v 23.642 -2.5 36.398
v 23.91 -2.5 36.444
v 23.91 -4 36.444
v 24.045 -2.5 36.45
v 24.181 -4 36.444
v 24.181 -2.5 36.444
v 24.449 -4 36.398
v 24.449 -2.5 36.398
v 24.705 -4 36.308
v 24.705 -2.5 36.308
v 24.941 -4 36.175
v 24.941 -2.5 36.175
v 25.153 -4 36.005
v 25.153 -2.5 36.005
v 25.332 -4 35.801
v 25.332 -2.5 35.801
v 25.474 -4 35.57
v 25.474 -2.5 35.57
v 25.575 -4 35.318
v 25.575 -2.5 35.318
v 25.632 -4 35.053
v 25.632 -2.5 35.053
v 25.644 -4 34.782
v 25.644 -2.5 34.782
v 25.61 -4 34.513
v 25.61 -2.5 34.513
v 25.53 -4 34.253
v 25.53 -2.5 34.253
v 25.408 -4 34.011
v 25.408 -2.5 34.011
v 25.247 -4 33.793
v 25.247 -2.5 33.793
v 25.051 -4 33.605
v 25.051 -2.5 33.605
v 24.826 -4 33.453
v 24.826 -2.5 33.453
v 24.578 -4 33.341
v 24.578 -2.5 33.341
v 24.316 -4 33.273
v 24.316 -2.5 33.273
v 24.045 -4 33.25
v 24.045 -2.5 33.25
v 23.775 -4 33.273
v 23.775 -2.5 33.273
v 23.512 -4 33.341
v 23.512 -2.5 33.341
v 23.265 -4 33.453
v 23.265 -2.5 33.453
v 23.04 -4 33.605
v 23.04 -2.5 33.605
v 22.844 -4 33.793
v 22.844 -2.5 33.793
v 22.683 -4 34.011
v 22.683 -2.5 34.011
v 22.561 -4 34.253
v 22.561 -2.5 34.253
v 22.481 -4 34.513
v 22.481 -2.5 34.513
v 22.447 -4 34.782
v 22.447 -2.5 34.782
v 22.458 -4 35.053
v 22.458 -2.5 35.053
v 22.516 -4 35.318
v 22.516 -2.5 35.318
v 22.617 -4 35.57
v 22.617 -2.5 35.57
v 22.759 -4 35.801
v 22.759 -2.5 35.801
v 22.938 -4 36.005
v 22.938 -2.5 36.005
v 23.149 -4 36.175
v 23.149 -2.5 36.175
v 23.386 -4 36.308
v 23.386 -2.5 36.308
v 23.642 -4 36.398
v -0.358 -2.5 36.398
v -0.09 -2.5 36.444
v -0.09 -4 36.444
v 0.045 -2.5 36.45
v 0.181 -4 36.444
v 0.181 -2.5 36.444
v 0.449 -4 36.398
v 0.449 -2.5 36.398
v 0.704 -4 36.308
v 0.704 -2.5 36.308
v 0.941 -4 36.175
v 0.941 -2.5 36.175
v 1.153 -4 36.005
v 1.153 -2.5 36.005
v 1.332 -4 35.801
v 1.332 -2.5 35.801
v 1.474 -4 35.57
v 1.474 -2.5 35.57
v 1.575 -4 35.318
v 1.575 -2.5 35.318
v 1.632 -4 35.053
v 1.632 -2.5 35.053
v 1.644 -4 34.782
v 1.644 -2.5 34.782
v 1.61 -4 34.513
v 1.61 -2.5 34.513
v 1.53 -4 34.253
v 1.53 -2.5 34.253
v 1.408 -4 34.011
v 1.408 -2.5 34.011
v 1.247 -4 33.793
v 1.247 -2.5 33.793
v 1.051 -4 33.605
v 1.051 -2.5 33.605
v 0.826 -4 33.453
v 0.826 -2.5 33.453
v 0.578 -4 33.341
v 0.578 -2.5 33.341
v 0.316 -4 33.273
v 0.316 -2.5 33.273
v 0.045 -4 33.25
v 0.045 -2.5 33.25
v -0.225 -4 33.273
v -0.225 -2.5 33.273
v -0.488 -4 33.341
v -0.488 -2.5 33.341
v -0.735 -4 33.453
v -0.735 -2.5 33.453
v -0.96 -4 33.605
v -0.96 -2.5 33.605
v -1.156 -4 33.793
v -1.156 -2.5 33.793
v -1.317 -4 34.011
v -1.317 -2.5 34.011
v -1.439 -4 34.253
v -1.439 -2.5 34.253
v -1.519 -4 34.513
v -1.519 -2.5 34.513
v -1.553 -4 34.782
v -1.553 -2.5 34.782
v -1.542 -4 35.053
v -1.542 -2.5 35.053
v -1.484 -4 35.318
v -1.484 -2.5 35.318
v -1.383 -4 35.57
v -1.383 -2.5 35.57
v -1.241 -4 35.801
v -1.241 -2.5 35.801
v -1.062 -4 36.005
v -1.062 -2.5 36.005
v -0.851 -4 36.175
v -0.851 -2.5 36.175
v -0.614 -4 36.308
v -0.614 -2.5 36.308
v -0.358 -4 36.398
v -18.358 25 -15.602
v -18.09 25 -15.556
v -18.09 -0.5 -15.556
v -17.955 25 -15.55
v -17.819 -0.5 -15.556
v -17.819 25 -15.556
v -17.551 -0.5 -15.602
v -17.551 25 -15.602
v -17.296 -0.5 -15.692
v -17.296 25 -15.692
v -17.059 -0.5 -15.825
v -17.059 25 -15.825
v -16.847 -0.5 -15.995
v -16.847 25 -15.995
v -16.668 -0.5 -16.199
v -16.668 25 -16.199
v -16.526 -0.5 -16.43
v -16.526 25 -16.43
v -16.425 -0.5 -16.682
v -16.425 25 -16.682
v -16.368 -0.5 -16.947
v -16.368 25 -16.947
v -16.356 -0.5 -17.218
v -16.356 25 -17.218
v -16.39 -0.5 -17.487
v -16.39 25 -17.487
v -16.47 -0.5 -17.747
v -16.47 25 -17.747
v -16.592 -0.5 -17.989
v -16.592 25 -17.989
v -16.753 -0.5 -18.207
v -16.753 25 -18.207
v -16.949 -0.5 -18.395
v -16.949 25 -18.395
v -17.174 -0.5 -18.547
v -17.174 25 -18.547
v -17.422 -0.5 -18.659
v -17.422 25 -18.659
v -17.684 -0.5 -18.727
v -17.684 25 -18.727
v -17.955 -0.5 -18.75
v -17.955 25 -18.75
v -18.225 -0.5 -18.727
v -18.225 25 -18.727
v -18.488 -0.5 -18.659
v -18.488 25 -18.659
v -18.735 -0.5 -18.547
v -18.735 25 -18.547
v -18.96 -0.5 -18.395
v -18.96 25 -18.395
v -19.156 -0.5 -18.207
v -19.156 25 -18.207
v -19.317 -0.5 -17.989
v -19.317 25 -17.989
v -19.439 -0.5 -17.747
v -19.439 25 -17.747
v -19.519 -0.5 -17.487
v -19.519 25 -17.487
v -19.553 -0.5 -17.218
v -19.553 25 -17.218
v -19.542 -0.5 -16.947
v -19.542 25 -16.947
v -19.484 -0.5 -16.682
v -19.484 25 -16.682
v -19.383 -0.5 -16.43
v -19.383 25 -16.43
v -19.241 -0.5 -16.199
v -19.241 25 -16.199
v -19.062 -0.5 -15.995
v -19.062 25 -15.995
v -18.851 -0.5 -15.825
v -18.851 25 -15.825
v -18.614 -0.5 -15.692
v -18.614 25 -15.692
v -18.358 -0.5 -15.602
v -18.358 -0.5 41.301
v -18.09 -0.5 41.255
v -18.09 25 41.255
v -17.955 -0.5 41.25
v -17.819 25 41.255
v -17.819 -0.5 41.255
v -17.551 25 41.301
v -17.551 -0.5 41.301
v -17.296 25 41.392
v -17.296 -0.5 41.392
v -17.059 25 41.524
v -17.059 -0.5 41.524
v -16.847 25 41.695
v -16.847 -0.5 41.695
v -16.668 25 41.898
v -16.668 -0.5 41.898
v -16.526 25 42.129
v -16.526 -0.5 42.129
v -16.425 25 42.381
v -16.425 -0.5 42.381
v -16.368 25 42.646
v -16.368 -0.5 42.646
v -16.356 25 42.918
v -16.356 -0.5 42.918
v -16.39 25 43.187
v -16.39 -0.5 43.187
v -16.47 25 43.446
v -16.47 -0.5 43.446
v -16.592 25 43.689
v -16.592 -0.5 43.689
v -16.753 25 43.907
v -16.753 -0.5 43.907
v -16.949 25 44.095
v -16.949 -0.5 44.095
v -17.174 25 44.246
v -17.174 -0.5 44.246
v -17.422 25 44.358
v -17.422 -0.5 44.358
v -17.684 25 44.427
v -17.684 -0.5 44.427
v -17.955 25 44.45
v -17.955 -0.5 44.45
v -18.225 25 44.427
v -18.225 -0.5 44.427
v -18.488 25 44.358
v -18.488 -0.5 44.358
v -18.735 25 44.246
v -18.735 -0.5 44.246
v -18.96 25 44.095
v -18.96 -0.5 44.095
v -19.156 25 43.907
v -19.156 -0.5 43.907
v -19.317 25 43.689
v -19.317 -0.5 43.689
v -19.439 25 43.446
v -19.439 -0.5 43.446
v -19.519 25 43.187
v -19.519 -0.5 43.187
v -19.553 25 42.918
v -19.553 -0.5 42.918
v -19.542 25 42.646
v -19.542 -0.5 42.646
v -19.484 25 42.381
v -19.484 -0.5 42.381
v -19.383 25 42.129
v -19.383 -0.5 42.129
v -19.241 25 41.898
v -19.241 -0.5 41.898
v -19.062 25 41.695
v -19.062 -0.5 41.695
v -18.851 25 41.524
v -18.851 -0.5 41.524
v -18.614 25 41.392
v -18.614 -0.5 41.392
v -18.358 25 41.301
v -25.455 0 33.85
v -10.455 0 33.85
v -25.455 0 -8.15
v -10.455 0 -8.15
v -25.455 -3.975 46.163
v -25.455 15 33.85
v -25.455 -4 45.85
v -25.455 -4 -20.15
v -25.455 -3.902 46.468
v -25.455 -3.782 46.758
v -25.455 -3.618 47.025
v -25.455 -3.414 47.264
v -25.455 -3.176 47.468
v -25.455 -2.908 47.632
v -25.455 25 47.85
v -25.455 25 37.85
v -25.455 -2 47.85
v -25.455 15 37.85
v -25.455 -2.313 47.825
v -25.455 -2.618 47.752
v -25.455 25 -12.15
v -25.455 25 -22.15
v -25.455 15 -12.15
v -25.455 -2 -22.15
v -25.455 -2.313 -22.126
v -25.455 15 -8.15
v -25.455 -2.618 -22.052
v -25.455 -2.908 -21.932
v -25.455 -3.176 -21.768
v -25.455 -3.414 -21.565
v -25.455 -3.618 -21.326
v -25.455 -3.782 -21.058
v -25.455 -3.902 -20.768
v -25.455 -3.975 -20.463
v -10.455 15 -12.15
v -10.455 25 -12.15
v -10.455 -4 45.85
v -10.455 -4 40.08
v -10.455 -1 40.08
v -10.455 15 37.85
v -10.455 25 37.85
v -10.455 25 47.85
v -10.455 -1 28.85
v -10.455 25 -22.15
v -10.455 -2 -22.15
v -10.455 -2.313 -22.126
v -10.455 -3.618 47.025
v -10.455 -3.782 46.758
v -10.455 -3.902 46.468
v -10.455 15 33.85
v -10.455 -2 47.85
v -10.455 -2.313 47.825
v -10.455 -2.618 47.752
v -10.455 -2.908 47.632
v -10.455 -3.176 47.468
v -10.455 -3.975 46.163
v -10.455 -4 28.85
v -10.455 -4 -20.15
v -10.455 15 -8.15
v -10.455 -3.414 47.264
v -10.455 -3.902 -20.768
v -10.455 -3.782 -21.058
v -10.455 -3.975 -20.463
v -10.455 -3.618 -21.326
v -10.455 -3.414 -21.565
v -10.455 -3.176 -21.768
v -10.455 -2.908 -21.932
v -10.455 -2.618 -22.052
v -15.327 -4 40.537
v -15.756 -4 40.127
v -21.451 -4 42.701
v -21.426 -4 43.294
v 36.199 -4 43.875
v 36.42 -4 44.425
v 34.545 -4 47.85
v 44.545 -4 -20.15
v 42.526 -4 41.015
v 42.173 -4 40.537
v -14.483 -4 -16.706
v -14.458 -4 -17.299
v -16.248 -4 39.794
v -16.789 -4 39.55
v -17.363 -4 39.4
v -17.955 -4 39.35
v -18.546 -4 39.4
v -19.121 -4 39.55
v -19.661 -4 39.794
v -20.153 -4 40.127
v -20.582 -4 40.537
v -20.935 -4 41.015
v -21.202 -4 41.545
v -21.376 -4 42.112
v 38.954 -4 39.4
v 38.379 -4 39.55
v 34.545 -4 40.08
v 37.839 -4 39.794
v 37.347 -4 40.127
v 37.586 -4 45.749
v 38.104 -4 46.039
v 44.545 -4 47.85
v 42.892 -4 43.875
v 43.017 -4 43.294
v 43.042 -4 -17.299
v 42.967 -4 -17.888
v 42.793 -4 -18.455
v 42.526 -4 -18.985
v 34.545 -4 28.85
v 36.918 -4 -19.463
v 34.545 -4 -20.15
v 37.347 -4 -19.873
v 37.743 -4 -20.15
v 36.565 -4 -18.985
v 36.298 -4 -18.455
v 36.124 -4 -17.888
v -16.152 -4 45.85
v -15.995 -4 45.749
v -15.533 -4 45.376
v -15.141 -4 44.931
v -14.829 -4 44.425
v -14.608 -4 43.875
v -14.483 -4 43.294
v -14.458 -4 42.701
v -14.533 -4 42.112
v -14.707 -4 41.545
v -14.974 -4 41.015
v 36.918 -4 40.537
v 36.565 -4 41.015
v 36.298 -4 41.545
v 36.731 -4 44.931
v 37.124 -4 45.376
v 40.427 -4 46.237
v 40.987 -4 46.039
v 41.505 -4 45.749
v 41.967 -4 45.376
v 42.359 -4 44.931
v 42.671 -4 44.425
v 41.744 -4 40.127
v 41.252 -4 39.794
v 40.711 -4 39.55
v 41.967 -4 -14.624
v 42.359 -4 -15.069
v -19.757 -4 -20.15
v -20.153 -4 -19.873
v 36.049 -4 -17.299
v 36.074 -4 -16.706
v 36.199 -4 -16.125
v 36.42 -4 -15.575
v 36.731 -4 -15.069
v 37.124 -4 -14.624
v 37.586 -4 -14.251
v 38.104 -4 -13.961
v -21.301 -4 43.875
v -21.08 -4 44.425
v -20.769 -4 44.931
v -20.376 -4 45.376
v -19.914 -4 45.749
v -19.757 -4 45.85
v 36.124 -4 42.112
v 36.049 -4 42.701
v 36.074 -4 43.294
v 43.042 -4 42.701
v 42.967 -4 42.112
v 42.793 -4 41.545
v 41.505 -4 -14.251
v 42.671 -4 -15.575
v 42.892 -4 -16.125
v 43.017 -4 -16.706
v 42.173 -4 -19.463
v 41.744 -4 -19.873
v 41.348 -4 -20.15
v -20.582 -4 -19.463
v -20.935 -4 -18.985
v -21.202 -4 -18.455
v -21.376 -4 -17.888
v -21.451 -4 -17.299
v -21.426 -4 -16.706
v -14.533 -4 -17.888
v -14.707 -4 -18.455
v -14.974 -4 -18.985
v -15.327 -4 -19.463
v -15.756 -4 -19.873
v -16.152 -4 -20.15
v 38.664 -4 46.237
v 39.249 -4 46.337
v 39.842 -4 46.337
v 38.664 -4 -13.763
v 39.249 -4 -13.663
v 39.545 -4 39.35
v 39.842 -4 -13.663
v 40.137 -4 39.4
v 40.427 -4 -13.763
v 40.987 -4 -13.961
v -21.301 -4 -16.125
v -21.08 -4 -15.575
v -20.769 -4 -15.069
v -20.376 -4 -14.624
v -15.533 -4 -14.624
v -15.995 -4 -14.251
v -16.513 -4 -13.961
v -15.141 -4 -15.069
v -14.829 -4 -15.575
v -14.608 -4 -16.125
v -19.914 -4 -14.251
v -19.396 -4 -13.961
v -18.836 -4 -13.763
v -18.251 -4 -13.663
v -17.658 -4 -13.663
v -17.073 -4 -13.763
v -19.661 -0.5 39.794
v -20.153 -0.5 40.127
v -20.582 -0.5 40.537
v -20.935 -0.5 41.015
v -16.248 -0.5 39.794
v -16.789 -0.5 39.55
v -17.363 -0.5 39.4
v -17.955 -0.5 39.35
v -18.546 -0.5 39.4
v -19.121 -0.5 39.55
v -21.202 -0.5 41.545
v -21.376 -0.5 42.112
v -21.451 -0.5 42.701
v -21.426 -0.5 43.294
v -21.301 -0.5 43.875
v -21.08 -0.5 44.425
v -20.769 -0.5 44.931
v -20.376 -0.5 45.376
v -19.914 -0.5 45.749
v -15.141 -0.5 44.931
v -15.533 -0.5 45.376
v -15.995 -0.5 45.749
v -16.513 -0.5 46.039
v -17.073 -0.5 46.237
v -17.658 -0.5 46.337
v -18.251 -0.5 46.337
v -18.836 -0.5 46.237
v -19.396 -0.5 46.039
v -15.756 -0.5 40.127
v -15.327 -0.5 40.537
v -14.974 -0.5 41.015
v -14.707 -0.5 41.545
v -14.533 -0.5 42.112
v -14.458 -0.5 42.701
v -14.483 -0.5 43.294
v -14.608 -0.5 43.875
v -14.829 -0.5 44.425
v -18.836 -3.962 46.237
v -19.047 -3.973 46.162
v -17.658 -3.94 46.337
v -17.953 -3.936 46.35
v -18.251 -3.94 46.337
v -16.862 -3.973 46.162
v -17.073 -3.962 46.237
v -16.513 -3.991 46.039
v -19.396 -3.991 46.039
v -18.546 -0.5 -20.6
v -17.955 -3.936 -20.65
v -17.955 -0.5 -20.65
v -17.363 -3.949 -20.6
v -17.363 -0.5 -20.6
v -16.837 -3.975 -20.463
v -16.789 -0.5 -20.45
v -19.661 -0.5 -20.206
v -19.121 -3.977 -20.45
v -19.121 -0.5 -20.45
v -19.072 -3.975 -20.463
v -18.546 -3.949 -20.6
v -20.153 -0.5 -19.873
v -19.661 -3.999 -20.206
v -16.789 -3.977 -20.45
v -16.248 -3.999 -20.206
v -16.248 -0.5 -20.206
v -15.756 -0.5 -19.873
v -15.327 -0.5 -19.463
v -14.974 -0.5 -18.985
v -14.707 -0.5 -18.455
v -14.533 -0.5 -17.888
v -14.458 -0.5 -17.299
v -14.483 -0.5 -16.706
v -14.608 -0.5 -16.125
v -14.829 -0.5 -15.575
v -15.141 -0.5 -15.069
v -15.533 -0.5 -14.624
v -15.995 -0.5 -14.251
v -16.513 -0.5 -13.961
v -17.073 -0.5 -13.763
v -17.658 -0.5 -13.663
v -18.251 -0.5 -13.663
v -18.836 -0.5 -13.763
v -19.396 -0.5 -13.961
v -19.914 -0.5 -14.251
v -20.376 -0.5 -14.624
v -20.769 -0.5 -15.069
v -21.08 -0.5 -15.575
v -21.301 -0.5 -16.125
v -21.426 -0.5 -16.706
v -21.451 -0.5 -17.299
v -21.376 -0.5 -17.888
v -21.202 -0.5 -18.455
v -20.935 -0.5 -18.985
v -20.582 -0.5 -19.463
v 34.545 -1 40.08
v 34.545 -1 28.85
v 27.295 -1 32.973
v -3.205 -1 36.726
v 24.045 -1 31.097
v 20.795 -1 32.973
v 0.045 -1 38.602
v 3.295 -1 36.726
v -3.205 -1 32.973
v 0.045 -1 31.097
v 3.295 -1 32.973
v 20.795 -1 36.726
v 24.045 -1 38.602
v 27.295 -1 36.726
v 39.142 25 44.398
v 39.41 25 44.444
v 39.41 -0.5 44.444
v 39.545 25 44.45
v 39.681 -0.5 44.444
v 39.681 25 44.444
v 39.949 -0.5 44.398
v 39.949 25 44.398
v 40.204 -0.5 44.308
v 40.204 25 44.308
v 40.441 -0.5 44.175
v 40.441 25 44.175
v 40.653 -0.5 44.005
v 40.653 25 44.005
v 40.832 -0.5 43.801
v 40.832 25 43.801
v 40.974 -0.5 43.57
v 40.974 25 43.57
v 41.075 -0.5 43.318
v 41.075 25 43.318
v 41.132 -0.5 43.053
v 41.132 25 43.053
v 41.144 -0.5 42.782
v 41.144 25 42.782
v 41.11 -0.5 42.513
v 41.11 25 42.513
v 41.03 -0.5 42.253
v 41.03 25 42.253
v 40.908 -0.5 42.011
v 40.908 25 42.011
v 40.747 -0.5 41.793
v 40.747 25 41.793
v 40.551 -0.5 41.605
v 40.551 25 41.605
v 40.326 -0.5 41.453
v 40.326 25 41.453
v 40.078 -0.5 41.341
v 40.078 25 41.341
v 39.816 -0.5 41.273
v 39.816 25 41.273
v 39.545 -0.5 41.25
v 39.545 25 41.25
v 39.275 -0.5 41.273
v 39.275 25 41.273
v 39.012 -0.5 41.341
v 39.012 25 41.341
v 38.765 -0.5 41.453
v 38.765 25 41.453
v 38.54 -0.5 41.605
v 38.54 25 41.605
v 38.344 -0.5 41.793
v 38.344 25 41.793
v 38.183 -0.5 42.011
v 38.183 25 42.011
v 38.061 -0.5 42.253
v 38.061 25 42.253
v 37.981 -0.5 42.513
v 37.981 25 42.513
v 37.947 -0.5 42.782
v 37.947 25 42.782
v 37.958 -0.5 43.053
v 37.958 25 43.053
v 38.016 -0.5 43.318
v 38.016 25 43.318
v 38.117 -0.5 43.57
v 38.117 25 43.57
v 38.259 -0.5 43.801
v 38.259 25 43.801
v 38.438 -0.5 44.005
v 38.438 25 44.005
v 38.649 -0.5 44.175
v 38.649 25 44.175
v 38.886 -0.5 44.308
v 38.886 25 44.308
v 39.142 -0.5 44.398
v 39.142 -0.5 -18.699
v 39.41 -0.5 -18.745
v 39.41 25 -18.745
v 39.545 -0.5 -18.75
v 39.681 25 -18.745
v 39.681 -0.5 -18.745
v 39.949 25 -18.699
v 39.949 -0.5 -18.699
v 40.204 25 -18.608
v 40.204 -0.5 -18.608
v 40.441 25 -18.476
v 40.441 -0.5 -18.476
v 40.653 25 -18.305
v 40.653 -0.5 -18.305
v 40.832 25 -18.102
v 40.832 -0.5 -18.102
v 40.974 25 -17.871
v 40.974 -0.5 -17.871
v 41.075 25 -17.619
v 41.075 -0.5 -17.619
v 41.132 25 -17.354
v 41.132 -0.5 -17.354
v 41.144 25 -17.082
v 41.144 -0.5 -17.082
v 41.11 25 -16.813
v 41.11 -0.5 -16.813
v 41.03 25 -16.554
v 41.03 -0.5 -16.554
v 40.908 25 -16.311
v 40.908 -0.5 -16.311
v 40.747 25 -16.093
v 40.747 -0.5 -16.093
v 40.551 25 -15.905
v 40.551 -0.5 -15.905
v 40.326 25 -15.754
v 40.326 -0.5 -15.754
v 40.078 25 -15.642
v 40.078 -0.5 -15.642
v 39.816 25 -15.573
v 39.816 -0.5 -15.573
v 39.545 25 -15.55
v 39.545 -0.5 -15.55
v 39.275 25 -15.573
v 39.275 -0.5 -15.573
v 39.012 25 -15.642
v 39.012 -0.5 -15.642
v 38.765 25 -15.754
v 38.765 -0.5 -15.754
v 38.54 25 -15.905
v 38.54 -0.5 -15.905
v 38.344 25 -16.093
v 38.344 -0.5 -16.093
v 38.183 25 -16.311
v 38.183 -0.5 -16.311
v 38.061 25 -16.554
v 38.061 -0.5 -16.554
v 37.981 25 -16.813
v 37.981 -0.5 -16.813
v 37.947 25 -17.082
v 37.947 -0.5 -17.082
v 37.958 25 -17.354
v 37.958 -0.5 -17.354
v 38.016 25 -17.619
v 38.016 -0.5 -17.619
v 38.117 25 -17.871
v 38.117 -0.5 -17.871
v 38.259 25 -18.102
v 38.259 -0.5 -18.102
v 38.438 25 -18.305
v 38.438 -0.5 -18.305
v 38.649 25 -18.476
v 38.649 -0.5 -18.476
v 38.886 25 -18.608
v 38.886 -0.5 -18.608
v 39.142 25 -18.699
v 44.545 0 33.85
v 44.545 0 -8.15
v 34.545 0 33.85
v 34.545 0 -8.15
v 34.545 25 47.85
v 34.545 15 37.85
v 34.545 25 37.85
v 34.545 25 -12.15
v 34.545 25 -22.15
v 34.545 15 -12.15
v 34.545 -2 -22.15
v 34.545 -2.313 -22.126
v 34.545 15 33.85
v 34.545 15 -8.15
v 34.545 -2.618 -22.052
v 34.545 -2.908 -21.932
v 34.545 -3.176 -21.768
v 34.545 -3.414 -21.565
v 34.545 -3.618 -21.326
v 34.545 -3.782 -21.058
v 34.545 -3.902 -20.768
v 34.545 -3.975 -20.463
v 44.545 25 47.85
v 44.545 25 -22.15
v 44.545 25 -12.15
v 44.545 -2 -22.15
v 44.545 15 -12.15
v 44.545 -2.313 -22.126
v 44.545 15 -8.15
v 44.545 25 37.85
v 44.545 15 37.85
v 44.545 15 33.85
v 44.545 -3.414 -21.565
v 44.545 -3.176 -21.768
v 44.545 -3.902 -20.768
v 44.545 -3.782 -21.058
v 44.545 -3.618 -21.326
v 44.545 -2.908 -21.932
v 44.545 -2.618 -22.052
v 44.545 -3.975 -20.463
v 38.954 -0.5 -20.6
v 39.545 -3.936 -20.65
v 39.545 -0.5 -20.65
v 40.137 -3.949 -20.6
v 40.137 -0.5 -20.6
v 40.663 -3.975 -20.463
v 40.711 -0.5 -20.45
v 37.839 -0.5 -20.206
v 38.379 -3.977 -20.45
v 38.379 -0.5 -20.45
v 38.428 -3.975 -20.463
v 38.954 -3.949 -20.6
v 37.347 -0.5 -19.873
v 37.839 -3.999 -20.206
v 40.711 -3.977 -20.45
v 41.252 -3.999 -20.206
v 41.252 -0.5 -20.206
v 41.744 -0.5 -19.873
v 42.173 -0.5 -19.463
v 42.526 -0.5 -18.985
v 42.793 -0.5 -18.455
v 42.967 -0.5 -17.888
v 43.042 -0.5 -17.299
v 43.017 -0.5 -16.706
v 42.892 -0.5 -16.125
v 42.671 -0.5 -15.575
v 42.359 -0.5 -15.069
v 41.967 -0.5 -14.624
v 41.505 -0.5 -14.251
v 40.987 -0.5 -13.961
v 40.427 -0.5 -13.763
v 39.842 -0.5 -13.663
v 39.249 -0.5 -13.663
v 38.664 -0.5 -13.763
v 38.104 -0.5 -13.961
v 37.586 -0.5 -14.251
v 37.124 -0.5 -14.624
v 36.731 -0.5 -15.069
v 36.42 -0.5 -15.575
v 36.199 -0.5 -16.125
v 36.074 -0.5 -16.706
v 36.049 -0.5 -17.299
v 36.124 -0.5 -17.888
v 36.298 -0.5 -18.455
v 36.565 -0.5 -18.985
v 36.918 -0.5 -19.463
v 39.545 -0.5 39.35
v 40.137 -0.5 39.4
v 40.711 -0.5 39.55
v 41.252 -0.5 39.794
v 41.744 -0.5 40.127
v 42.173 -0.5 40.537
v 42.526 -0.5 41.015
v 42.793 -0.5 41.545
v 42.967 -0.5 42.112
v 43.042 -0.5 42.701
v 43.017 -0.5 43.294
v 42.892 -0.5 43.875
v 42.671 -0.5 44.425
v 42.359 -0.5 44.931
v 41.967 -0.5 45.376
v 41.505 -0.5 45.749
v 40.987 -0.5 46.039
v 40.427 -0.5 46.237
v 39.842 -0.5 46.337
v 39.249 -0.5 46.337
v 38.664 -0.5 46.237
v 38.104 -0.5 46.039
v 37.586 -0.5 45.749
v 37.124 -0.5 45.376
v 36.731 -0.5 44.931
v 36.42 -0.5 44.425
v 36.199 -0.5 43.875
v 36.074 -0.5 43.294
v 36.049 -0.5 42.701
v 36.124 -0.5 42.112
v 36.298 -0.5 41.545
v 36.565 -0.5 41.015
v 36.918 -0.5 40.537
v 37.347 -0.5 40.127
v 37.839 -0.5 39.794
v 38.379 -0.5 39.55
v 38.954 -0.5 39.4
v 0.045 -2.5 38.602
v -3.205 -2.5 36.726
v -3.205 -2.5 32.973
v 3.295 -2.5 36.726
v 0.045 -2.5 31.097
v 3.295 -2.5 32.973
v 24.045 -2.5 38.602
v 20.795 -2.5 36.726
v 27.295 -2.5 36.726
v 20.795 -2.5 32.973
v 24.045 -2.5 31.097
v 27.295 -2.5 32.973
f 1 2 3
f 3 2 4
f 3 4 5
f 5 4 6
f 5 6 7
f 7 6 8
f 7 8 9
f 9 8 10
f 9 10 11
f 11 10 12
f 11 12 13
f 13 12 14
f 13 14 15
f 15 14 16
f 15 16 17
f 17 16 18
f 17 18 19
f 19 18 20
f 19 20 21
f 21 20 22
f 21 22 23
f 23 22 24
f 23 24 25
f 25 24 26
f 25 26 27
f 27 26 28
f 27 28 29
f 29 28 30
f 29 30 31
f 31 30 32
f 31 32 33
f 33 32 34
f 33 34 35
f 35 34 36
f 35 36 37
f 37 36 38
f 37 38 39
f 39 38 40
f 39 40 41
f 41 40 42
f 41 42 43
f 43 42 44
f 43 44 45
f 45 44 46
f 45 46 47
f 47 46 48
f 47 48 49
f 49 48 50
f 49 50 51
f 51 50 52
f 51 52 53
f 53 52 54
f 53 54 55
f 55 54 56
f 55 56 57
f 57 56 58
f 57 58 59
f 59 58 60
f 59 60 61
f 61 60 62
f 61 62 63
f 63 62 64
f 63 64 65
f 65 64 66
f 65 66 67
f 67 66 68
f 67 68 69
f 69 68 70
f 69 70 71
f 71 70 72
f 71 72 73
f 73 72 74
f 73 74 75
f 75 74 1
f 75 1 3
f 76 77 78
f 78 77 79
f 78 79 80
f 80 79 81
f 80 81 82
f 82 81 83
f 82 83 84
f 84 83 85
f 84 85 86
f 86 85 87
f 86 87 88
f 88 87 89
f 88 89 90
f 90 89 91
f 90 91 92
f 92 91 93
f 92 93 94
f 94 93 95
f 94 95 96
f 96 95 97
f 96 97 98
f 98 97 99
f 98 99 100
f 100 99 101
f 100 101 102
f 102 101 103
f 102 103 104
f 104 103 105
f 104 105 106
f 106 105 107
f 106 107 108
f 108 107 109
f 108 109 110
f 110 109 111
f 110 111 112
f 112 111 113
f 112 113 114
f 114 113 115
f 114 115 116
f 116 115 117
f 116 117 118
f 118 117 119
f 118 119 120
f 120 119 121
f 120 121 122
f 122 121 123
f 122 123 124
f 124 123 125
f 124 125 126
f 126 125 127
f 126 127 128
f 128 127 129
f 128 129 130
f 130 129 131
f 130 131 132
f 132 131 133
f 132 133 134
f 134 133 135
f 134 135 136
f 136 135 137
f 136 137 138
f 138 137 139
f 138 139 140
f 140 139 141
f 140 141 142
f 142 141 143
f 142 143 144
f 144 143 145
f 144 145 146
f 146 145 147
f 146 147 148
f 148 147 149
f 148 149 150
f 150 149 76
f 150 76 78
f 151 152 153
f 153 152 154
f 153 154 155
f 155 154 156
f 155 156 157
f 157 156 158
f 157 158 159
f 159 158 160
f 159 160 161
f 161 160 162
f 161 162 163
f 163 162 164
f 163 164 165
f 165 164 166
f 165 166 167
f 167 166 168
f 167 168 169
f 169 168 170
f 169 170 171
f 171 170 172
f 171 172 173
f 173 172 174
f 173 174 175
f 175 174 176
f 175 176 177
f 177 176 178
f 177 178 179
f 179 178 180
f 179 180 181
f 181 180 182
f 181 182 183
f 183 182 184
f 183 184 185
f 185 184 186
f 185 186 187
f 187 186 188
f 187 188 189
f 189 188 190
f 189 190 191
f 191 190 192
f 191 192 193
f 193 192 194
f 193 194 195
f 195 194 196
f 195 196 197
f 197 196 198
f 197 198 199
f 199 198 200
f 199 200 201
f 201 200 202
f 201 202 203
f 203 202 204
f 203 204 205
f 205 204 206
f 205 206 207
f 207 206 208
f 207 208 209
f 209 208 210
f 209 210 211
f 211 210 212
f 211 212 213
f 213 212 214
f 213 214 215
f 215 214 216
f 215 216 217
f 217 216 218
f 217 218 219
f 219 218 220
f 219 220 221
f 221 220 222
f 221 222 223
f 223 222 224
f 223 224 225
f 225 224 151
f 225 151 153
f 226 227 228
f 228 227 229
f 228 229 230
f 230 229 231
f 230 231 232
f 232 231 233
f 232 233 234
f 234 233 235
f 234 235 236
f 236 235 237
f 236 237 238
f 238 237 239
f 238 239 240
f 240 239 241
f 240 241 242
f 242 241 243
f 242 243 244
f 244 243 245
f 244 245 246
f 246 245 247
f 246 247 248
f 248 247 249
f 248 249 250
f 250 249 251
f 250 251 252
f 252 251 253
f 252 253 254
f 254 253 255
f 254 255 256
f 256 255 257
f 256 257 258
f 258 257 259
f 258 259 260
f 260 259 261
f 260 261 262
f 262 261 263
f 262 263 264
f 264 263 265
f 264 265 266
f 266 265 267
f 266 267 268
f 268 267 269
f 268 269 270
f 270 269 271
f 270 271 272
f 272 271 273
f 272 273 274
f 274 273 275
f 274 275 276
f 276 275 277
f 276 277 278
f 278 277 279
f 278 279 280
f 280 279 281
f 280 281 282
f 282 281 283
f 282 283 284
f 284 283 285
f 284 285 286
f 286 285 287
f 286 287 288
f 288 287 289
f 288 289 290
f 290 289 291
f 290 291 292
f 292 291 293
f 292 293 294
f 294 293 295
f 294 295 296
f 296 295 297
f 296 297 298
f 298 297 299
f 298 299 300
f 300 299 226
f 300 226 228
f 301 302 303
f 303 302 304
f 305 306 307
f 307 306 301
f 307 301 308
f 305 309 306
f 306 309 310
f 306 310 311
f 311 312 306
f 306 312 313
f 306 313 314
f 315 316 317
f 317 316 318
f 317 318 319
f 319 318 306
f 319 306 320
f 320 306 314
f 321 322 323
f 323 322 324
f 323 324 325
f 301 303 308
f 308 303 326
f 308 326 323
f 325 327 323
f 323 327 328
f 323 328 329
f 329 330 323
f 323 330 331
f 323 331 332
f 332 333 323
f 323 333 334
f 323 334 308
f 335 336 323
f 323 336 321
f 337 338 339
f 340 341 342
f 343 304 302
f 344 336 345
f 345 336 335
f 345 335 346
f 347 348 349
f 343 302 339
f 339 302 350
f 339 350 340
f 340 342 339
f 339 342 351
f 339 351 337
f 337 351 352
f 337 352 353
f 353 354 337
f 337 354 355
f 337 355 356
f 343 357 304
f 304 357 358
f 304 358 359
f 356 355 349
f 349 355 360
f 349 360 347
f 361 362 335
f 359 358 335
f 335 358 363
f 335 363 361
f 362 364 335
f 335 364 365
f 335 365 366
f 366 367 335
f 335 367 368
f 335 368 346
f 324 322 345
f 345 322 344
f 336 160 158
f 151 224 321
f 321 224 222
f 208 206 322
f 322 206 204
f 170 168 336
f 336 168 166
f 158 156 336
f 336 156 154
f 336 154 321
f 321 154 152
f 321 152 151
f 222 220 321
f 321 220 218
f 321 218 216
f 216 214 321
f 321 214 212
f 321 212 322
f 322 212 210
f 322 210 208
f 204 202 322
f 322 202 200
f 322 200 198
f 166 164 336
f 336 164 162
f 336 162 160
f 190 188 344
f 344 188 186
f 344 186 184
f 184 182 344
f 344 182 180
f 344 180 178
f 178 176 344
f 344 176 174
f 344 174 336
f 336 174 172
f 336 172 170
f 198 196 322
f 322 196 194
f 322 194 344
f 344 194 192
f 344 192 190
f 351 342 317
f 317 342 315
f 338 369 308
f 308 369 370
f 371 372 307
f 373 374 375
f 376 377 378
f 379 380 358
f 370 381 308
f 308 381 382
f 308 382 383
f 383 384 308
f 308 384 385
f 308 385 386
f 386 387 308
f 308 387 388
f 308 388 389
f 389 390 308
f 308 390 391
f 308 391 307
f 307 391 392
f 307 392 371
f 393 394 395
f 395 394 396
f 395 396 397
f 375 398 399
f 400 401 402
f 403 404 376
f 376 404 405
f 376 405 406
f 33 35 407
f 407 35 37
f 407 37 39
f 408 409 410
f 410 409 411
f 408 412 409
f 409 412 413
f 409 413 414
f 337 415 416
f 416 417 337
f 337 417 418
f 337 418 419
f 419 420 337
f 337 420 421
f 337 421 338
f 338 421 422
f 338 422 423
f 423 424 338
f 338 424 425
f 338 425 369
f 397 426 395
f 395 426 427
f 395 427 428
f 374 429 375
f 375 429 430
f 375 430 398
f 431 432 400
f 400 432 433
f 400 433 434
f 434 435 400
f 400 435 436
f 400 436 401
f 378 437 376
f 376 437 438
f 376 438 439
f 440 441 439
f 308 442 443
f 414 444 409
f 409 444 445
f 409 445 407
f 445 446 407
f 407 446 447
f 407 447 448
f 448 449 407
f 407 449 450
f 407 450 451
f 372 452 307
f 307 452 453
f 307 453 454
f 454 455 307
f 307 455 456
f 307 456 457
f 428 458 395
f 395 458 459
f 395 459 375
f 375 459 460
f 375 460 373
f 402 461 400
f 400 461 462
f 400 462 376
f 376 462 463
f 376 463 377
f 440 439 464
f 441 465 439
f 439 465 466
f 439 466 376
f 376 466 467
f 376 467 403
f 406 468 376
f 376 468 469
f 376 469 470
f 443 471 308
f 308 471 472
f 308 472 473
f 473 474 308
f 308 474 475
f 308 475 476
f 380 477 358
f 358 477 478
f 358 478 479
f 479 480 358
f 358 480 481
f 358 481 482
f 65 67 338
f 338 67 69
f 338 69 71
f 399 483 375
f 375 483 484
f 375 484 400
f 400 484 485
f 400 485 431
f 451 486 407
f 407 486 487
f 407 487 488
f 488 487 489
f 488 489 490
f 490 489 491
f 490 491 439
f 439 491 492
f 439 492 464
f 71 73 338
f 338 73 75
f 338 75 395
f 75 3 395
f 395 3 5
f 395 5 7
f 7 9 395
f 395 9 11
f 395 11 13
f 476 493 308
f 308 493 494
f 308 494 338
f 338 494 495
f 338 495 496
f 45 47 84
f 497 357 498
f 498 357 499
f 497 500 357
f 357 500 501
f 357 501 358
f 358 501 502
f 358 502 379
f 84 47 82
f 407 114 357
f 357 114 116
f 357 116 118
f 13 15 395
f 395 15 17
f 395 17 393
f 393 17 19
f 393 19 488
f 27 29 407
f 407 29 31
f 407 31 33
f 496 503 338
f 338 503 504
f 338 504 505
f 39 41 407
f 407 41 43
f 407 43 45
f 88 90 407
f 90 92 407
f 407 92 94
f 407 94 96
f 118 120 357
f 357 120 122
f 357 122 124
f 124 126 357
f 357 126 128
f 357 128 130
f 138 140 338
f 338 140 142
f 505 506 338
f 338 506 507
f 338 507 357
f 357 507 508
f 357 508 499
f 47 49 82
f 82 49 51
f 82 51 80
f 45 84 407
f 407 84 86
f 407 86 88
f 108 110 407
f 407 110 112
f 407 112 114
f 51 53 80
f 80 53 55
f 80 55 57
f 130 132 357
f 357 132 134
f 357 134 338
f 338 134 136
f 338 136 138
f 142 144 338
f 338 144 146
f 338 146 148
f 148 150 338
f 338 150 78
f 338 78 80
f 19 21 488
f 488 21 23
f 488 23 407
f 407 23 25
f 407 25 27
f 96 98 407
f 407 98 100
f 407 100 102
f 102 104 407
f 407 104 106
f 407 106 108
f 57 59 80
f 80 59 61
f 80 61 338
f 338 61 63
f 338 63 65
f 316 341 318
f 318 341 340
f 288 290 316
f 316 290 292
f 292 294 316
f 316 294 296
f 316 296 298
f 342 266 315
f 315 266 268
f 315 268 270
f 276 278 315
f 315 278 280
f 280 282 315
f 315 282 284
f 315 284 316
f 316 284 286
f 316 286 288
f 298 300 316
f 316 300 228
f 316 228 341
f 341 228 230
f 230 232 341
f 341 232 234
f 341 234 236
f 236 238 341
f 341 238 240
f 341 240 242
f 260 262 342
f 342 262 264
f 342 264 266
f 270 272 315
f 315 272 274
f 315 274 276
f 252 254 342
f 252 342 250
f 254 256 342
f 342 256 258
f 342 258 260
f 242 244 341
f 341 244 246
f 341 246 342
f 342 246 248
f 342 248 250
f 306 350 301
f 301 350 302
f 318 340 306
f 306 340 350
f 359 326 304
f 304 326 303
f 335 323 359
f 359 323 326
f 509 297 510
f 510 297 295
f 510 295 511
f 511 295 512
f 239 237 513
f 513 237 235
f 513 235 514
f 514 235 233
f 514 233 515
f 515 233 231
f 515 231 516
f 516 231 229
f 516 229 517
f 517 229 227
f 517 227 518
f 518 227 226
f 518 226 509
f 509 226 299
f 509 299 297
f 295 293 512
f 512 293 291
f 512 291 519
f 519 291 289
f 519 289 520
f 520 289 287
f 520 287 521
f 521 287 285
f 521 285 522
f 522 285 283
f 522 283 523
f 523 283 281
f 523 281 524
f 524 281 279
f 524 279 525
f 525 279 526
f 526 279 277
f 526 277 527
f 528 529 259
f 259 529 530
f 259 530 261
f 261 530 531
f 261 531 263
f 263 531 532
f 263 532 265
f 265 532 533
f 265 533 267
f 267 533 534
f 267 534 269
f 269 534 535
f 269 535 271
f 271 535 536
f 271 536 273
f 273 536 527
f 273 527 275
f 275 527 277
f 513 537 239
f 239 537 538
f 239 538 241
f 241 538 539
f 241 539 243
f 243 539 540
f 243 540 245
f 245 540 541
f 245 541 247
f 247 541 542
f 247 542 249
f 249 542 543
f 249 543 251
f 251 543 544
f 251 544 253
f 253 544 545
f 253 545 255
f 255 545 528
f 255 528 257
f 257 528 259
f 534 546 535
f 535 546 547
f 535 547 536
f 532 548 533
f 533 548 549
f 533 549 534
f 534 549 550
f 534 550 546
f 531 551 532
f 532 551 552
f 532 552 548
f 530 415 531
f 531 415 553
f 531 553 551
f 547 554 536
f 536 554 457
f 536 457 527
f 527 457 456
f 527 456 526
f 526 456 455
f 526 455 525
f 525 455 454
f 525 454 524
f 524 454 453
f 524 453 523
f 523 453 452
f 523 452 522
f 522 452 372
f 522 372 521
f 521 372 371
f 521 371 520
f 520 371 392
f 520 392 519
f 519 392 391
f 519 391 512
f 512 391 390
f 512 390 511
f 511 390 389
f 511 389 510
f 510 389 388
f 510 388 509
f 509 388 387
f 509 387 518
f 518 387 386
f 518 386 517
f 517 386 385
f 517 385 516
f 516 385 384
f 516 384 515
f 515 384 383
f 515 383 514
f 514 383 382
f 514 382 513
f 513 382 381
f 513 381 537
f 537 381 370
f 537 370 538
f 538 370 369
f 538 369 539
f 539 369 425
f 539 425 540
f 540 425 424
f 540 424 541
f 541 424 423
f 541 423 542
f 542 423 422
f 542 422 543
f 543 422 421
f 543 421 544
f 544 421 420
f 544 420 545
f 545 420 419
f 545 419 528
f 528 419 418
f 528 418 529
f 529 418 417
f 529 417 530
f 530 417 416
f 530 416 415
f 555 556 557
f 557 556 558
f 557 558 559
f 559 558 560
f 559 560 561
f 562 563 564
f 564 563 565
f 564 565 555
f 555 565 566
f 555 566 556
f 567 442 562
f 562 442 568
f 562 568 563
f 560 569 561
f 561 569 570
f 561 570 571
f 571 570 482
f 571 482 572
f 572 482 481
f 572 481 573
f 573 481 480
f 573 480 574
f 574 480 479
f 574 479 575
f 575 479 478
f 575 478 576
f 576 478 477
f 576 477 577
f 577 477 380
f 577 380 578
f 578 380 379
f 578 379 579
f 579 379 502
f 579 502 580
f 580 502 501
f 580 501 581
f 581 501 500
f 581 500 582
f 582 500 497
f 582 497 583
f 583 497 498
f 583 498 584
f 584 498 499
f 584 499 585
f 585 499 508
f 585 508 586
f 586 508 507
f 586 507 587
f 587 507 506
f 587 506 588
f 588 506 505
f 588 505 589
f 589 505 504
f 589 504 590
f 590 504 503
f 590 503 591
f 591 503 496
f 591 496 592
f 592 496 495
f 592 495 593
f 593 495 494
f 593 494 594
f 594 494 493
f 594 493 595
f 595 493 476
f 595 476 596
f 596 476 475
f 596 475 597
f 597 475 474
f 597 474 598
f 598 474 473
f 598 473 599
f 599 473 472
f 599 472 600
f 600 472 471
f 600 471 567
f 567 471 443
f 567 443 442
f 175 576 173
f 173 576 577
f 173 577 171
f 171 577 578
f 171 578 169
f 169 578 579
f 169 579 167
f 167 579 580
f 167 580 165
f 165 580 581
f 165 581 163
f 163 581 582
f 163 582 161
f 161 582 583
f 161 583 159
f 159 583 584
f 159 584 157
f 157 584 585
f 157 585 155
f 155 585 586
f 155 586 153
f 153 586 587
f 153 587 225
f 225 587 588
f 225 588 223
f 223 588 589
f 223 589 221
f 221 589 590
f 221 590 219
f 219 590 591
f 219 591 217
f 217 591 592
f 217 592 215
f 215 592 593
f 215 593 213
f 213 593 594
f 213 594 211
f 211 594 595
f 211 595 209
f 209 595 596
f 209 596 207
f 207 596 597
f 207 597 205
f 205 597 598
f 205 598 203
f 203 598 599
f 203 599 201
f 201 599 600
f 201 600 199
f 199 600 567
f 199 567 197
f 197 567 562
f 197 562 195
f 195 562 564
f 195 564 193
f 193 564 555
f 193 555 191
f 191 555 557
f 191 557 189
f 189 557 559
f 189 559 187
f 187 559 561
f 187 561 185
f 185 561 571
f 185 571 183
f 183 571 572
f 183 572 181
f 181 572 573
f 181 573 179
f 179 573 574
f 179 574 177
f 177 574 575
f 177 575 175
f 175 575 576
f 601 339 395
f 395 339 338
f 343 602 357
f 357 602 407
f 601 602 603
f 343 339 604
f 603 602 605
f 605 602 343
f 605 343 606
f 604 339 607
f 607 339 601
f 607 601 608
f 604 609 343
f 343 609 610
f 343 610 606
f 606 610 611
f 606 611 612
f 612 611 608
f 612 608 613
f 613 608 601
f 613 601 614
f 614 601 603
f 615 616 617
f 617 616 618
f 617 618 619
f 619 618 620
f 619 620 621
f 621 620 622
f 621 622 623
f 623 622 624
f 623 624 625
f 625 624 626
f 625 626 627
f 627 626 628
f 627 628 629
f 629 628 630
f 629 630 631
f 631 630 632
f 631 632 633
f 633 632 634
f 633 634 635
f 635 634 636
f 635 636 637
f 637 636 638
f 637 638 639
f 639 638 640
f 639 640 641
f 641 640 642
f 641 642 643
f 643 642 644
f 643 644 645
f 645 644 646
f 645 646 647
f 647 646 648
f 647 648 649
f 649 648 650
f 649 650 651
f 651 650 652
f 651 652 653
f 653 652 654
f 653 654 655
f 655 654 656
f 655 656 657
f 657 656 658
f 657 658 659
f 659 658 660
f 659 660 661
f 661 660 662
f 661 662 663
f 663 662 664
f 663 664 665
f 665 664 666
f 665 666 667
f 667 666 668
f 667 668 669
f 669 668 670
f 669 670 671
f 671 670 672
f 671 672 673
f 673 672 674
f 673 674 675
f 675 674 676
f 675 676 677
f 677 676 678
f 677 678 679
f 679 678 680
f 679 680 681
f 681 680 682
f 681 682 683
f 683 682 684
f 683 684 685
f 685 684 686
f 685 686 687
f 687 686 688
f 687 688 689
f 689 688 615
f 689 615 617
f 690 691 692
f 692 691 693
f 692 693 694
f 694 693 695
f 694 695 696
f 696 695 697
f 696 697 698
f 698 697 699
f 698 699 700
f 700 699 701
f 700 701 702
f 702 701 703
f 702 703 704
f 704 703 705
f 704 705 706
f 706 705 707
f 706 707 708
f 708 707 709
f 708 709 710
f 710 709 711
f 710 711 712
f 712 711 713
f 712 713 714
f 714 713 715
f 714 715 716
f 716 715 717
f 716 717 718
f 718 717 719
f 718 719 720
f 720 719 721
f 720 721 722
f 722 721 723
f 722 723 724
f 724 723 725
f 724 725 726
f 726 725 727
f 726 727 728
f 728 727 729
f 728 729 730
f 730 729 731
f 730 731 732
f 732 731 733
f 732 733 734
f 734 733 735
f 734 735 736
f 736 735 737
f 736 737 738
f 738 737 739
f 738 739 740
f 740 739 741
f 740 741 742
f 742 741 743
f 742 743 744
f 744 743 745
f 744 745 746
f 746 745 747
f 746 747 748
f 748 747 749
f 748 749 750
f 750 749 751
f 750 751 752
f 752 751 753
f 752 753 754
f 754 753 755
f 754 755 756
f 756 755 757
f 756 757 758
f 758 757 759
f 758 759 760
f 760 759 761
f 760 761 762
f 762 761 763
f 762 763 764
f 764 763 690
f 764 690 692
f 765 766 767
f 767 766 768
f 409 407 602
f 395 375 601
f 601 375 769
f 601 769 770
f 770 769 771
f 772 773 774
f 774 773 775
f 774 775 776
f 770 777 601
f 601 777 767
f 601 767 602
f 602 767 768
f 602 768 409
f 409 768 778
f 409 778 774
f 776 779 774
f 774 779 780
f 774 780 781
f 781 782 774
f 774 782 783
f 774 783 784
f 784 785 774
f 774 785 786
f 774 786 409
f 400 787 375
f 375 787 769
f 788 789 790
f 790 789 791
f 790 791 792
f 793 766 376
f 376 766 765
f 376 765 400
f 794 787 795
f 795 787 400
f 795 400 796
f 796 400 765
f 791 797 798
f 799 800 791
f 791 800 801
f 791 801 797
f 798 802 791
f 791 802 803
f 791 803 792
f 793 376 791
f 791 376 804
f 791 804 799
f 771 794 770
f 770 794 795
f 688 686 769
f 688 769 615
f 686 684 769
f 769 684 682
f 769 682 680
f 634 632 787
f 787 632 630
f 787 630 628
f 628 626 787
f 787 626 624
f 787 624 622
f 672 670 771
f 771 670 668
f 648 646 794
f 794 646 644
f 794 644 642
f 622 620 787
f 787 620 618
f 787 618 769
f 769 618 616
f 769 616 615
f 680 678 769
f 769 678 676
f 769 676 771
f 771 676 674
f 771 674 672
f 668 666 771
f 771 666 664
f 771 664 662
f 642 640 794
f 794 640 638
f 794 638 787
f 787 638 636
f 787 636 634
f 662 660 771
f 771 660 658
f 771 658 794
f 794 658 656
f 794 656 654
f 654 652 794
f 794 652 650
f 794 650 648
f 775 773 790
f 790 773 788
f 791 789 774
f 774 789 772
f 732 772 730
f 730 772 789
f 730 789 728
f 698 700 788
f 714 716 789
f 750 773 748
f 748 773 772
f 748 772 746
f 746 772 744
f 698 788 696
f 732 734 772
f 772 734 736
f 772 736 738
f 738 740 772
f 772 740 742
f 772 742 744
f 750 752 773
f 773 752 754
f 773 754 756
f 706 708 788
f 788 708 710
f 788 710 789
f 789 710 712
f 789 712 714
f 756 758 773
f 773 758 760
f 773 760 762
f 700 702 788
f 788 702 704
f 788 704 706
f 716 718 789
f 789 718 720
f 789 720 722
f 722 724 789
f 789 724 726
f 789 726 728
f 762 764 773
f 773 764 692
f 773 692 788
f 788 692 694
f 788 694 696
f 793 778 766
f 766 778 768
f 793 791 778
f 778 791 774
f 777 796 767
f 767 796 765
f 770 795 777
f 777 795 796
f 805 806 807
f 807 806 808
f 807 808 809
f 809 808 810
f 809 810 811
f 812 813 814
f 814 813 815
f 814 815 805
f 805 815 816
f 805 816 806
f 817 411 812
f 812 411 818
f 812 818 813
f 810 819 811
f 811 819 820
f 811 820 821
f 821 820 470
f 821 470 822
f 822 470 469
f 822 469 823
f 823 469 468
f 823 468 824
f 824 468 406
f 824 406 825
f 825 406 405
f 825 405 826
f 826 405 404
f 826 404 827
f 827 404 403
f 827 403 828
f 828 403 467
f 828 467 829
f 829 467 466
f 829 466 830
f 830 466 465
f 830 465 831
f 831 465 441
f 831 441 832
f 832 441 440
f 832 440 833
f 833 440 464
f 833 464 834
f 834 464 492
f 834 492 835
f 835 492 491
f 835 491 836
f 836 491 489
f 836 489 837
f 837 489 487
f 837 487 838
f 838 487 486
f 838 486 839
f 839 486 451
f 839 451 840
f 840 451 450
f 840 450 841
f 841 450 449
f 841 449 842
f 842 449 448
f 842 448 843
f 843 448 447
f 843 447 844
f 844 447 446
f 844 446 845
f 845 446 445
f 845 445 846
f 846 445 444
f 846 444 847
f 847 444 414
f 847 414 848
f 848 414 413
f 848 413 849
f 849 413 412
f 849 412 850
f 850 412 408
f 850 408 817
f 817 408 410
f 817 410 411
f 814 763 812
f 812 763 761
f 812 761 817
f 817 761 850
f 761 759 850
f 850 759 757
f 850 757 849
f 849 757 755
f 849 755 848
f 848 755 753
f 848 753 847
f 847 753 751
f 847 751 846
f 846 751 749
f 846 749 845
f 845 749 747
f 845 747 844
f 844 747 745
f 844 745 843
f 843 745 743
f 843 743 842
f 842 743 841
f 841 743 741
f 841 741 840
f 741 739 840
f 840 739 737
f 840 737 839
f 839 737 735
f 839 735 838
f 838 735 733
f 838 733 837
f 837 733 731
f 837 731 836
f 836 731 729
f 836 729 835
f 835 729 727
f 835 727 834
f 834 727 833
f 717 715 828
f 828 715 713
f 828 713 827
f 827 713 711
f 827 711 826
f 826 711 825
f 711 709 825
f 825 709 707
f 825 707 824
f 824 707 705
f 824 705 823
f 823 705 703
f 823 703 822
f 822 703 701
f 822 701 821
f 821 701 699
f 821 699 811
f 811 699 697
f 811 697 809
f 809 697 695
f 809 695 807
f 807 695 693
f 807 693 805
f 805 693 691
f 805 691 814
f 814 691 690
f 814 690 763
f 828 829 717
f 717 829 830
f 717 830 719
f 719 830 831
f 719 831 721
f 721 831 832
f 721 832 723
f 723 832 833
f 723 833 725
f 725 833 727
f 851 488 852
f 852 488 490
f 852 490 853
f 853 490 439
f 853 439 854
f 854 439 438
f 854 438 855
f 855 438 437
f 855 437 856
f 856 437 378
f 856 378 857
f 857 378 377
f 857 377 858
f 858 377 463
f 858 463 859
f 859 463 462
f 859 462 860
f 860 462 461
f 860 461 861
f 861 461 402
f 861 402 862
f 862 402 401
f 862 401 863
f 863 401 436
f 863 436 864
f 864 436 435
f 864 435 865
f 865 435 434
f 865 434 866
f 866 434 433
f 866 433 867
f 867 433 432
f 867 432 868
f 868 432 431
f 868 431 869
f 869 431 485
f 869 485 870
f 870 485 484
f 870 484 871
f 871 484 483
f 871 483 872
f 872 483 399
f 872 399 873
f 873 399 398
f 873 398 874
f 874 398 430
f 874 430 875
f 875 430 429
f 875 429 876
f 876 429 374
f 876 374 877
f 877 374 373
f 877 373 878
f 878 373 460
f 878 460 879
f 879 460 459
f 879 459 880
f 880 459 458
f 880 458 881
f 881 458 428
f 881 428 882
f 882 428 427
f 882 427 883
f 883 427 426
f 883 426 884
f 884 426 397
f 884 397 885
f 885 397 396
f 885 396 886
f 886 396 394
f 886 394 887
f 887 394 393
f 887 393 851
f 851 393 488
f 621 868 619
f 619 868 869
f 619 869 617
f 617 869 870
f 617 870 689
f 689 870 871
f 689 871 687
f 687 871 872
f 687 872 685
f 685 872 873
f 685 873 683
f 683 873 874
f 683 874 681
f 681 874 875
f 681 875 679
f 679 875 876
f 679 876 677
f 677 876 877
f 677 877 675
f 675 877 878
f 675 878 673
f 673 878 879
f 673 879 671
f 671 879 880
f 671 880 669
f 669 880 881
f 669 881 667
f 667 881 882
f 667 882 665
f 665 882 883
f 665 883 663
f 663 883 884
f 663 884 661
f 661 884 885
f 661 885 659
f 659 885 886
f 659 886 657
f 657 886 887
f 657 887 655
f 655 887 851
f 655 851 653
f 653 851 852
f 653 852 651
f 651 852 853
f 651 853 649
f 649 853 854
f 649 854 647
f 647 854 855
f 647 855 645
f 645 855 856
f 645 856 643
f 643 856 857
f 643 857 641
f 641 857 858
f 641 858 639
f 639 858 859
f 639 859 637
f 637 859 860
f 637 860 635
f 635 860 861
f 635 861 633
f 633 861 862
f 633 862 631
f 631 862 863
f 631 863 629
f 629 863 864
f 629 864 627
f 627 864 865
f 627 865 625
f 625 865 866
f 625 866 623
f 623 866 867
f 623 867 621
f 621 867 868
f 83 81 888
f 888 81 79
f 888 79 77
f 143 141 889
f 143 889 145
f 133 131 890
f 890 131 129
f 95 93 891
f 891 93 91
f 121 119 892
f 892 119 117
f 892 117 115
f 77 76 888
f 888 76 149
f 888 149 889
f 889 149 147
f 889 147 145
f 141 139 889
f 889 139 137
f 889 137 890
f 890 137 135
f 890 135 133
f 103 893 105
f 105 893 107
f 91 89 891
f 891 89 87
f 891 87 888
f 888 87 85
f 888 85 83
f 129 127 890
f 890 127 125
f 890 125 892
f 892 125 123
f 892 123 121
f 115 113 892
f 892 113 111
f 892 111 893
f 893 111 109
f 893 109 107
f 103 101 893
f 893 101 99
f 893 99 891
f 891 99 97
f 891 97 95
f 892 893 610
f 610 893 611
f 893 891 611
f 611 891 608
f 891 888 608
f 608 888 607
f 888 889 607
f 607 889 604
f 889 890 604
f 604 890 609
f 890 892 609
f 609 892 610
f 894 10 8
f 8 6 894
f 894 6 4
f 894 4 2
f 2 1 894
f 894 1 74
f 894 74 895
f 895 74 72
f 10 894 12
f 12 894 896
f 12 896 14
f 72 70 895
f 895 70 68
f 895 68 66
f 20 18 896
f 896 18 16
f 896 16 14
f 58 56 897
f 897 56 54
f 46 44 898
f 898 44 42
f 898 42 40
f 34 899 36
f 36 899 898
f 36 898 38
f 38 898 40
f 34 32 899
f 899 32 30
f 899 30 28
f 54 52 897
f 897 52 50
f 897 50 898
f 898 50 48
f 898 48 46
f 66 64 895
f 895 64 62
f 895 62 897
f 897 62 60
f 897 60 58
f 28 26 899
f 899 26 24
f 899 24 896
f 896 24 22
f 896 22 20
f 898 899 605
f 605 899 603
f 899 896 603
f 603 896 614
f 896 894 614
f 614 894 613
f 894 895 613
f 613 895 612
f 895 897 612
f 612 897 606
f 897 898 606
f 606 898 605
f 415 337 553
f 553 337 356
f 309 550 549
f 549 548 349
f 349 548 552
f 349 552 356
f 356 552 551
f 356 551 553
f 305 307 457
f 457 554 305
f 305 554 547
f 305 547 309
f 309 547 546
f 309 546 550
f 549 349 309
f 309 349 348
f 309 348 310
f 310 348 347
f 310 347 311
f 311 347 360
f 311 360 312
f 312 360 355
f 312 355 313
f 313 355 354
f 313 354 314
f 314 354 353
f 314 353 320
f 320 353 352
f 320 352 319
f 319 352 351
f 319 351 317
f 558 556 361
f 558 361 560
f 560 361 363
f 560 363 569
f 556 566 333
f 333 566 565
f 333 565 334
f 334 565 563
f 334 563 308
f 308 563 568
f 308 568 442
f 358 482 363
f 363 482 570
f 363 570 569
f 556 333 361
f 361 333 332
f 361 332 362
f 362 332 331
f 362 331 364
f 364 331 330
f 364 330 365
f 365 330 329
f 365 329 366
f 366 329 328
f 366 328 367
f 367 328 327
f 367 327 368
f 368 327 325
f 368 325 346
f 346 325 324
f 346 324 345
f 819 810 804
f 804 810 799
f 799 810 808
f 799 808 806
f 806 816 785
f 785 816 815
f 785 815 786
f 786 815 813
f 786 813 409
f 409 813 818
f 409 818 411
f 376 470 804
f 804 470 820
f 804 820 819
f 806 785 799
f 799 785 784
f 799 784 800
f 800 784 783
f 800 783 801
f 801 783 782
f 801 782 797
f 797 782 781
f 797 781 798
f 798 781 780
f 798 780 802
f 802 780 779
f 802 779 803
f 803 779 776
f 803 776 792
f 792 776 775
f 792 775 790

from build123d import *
from build123d.topology import SkipClean

# Parameters (mm, degrees)
CROQUIS1_W                = 15
CROQUIS1_H                = 10
CROQUIS1_R                = 1.6
SALIENTE_EXTRUIR2_DEPTH   = 25
SALIENTE_EXTRUIR2_2_DEPTH = 25
CROQUIS1_W_2              = 10
SALIENTE_EXTRUIR2_3_DEPTH = 25
SALIENTE_EXTRUIR2_4_DEPTH = 25
SALIENTE_EXTRUIR3_START   = 4
CROQUIS2_R                = 1.6
CROQUIS2_W                = 15
CROQUIS2_H                = 10
SALIENTE_EXTRUIR3_DEPTH   = 4
CROQUIS3_W                = 15
CROQUIS3_H                = 4
CROQUIS3_W_2              = 10
SALIENTE_EXTRUIR4_DEPTH   = 15
CROQUIS4_R                = 3.5
CORTAR_EXTRUIR1_DEPTH     = 3.5
SALIENTE_EXTRUIR5_DEPTH   = 3
CROQUIS6_R                = 1.6
CORTAR_EXTRUIR2_DEPTH     = 3
CORTAR_EXTRUIR3_DEPTH     = 1.5
REDONDEO1_R               = 2


with BuildPart() as part:
    # Croquis1 → Saliente-Extruir2 (new body)
    with BuildSketch(Plane(origin=(0, 0, 0), x_dir=(1, 0, 0), z_dir=(0, 1, 0))):
        with Locations((-17.954545455, 17.15034965)):
            Rectangle(CROQUIS1_W, CROQUIS1_H)
        with Locations(Location((-17.954545455, 17.15034965, 0), (0, 0, 270))):
            Circle(CROQUIS1_R, mode=Mode.SUBTRACT)
    extrude(amount=SALIENTE_EXTRUIR2_DEPTH)



with BuildPart() as body_2:
    # Croquis1 → Saliente-Extruir2 2 (new body)
    with BuildSketch(Plane(origin=(0, 0, 0), x_dir=(1, 0, 0), z_dir=(0, 1, 0))):
        with Locations((-17.954545455, -42.84965035)):
            Rectangle(CROQUIS1_W, CROQUIS1_H)
        with Locations(Location((-17.954545455, -42.84965035, 0), (0, 0, 270))):
            Circle(CROQUIS1_R, mode=Mode.SUBTRACT)
    extrude(amount=SALIENTE_EXTRUIR2_2_DEPTH)


with BuildPart() as body_3:
    # Croquis1 → Saliente-Extruir2 3 (new body)
    with BuildSketch(Plane(origin=(0, 0, 0), x_dir=(1, 0, 0), z_dir=(0, 1, 0))):
        with Locations((39.545454545, -42.84965035)):
            Rectangle(CROQUIS1_W_2, CROQUIS1_H)
        with Locations(Location((39.545454545, -42.84965035, 0), (0, 0, 270))):
            Circle(CROQUIS1_R, mode=Mode.SUBTRACT)
    extrude(amount=SALIENTE_EXTRUIR2_3_DEPTH)


with BuildPart() as body_4:
    # Croquis1 → Saliente-Extruir2 4 (new body)
    with BuildSketch(Plane(origin=(0, 0, 0), x_dir=(1, 0, 0), z_dir=(0, 1, 0))):
        with Locations((39.545454545, 17.15034965)):
            Rectangle(CROQUIS1_W_2, CROQUIS1_H)
        with Locations(Location((39.545454545, 17.15034965, 0), (0, 0, 270))):
            Circle(CROQUIS1_R, mode=Mode.SUBTRACT)
    extrude(amount=SALIENTE_EXTRUIR2_4_DEPTH)


with BuildPart() as part_1:
    with SkipClean():  # the faces are left unmerged after this step: merging them gives an invalid solid
        add(part.part)

        add(body_2.part)  # Saliente-Extruir3 merges body 2

        add(body_3.part)  # Saliente-Extruir3 merges body 3

        add(body_4.part)  # Saliente-Extruir3 merges body 4
        # Croquis2 → Saliente-Extruir3 (add)
        # profile 1 of 3: a face of its own
        with BuildSketch(Plane.XZ.offset(SALIENTE_EXTRUIR3_START)):
            Polygon((-25.454545455, -22.15034965), (-10.454545455, -22.15034965), (-10.454545455, -12.15034965), (-10.454545455, 37.84965035), (-25.454545455, 37.84965035), (-25.454545455, -12.15034965), align=None)
            with Locations(Location((-17.954545455, -17.15034965, 0), (0, 0, 270))):
                Circle(CROQUIS2_R, mode=Mode.SUBTRACT)
        # profile 2 of 3: a face of its own
        with BuildSketch(Plane.XZ.offset(SALIENTE_EXTRUIR3_START)):
            with Locations((-17.954545455, 42.84965035)):
                Rectangle(CROQUIS2_W, CROQUIS2_H)
            with Locations(Location((-17.954545455, 42.84965035, 0), (0, 0, 90))):
                Circle(CROQUIS2_R, mode=Mode.SUBTRACT)
        # profile 3 of 3: a face of its own
        with BuildSketch(Plane.XZ.offset(SALIENTE_EXTRUIR3_START)):
            Polygon((34.545454545, -12.15034965), (34.545454545, -22.15034965), (44.545454545, -22.15034965), (44.545454545, -12.15034965), (44.545454545, 37.84965035), (44.545454545, 47.84965035), (34.545454545, 47.84965035), (34.545454545, 37.84965035), align=None)
            with Locations(Location((39.545454545, -17.15034965, 0), (0, 0, 90))):
                Circle(CROQUIS2_R, mode=Mode.SUBTRACT)
            with Locations(Location((39.545454545, 42.84965035, 0), (0, 0, 270))):
                Circle(CROQUIS2_R, mode=Mode.SUBTRACT)
        extrude(amount=-SALIENTE_EXTRUIR3_DEPTH)

    # Croquis3 → Saliente-Extruir4 (add)
    with BuildSketch(Plane(origin=(0, 0, 0), x_dir=(1, 0, 0), z_dir=(0, 1, 0))):
        with Locations((-17.954545455, -35.84965035)):
            Rectangle(CROQUIS3_W, CROQUIS3_H)
        with Locations((-17.954545455, 10.15034965)):
            Rectangle(CROQUIS3_W, CROQUIS3_H)
        with Locations((39.545454545, 10.15034965)):
            Rectangle(CROQUIS3_W_2, CROQUIS3_H)
        with Locations((39.545454545, -35.84965035)):
            Rectangle(CROQUIS3_W_2, CROQUIS3_H)
    extrude(amount=SALIENTE_EXTRUIR4_DEPTH)

    # Croquis4 → Cortar-Extruir1 (cut)
    with SkipClean():  # the faces are left unmerged after this step: merging them gives an invalid solid
        with BuildSketch(Plane.XZ.offset(4)):
            with Locations(Location((39.545454545, 42.84965035, 0), (0, 0, 270))):
                Circle(CROQUIS4_R)
            with Locations(Location((39.545454545, -17.15034965, 0), (0, 0, 270))):
                Circle(CROQUIS4_R)
            with Locations(Location((-17.954545455, -17.15034965, 0), (0, 0, 270))):
                Circle(CROQUIS4_R)
            with Locations(Location((-17.954545455, 42.84965035, 0), (0, 0, 270))):
                Circle(CROQUIS4_R)
        extrude(amount=-CORTAR_EXTRUIR1_DEPTH, mode=Mode.SUBTRACT)

    # Croquis5 → Saliente-Extruir5 (add)
    with SkipClean():  # the faces are left unmerged after this step: merging them gives an invalid solid
        with BuildSketch(Plane.XZ.offset(4)):
            Polygon((-10.454545455, 40.07981816), (34.545454545, 40.07981816), (34.545454545, 35.84965035), (34.545454545, 28.84965035), (-10.454545455, 28.84965035), (-10.454545455, 35.84965035), align=None)
        extrude(amount=-SALIENTE_EXTRUIR5_DEPTH)

    # Croquis6 → Cortar-Extruir2 (cut)
    with SkipClean():  # the faces are left unmerged after this step: merging them gives an invalid solid
        with BuildSketch(Plane.XZ.offset(4)):
            with Locations(Location((24.045454545, 34.84965035, 0), (0, 0, 270))):
                Circle(CROQUIS6_R)
            with Locations(Location((0.045454545, 34.84965035, 0), (0, 0, 270))):
                Circle(CROQUIS6_R)
        extrude(amount=-CORTAR_EXTRUIR2_DEPTH, mode=Mode.SUBTRACT)

    # Croquis7 → Cortar-Extruir3 (cut)
    with SkipClean():  # the faces are left unmerged after this step: merging them gives an invalid solid
        with BuildSketch(Plane(origin=(0, -1, 0), x_dir=(1, 0, 0), z_dir=(0, 1, 0))):
            Polygon((0.045454545, -31.0968736), (-3.204545455, -32.973261975), (-3.204545455, -36.726038725), (0.045454545, -38.602427099), (3.295454545, -36.726038725), (3.295454545, -32.973261975), align=None)
            Polygon((24.045454545, -31.0968736), (20.795454545, -32.973261975), (20.795454545, -36.726038725), (24.045454545, -38.602427099), (27.295454545, -36.726038725), (27.295454545, -32.973261975), align=None)
        extrude(amount=-CORTAR_EXTRUIR3_DEPTH, mode=Mode.SUBTRACT)

    # Redondeo1
    # the kernel refuses this fillet: 2 mm, written as the material it takes off along each edge
    with BuildSketch(Plane(origin=(-5.454545455, -4, 47.84965035), x_dir=(0, 0, -1), z_dir=(-1, 0, 0)), Plane(origin=(-30.454545455, -4, -22.15034965), x_dir=(0, 0, 1), z_dir=(1, 0, 0))) as redondeo1_piece_1:
        with BuildLine():
            CenterArc((REDONDEO1_R, -REDONDEO1_R), REDONDEO1_R, 90, 90)
            Line((0, -REDONDEO1_R), (0, 0))
            Line((0, 0), (REDONDEO1_R, 0))
        make_face()
    extrude(amount=25, mode=Mode.SUBTRACT)
    with BuildSketch(Plane(origin=(29.545454545, -4, -22.15034965), x_dir=(0, 1, 0), z_dir=(1, 0, 0))) as redondeo1_piece_2:
        with BuildLine():
            CenterArc((REDONDEO1_R, REDONDEO1_R), REDONDEO1_R, 180, 90)
            Line((0, REDONDEO1_R), (0, 0))
            Line((0, 0), (REDONDEO1_R, 0))
        make_face()
    extrude(amount=20, mode=Mode.SUBTRACT)


solid = part_1.part
